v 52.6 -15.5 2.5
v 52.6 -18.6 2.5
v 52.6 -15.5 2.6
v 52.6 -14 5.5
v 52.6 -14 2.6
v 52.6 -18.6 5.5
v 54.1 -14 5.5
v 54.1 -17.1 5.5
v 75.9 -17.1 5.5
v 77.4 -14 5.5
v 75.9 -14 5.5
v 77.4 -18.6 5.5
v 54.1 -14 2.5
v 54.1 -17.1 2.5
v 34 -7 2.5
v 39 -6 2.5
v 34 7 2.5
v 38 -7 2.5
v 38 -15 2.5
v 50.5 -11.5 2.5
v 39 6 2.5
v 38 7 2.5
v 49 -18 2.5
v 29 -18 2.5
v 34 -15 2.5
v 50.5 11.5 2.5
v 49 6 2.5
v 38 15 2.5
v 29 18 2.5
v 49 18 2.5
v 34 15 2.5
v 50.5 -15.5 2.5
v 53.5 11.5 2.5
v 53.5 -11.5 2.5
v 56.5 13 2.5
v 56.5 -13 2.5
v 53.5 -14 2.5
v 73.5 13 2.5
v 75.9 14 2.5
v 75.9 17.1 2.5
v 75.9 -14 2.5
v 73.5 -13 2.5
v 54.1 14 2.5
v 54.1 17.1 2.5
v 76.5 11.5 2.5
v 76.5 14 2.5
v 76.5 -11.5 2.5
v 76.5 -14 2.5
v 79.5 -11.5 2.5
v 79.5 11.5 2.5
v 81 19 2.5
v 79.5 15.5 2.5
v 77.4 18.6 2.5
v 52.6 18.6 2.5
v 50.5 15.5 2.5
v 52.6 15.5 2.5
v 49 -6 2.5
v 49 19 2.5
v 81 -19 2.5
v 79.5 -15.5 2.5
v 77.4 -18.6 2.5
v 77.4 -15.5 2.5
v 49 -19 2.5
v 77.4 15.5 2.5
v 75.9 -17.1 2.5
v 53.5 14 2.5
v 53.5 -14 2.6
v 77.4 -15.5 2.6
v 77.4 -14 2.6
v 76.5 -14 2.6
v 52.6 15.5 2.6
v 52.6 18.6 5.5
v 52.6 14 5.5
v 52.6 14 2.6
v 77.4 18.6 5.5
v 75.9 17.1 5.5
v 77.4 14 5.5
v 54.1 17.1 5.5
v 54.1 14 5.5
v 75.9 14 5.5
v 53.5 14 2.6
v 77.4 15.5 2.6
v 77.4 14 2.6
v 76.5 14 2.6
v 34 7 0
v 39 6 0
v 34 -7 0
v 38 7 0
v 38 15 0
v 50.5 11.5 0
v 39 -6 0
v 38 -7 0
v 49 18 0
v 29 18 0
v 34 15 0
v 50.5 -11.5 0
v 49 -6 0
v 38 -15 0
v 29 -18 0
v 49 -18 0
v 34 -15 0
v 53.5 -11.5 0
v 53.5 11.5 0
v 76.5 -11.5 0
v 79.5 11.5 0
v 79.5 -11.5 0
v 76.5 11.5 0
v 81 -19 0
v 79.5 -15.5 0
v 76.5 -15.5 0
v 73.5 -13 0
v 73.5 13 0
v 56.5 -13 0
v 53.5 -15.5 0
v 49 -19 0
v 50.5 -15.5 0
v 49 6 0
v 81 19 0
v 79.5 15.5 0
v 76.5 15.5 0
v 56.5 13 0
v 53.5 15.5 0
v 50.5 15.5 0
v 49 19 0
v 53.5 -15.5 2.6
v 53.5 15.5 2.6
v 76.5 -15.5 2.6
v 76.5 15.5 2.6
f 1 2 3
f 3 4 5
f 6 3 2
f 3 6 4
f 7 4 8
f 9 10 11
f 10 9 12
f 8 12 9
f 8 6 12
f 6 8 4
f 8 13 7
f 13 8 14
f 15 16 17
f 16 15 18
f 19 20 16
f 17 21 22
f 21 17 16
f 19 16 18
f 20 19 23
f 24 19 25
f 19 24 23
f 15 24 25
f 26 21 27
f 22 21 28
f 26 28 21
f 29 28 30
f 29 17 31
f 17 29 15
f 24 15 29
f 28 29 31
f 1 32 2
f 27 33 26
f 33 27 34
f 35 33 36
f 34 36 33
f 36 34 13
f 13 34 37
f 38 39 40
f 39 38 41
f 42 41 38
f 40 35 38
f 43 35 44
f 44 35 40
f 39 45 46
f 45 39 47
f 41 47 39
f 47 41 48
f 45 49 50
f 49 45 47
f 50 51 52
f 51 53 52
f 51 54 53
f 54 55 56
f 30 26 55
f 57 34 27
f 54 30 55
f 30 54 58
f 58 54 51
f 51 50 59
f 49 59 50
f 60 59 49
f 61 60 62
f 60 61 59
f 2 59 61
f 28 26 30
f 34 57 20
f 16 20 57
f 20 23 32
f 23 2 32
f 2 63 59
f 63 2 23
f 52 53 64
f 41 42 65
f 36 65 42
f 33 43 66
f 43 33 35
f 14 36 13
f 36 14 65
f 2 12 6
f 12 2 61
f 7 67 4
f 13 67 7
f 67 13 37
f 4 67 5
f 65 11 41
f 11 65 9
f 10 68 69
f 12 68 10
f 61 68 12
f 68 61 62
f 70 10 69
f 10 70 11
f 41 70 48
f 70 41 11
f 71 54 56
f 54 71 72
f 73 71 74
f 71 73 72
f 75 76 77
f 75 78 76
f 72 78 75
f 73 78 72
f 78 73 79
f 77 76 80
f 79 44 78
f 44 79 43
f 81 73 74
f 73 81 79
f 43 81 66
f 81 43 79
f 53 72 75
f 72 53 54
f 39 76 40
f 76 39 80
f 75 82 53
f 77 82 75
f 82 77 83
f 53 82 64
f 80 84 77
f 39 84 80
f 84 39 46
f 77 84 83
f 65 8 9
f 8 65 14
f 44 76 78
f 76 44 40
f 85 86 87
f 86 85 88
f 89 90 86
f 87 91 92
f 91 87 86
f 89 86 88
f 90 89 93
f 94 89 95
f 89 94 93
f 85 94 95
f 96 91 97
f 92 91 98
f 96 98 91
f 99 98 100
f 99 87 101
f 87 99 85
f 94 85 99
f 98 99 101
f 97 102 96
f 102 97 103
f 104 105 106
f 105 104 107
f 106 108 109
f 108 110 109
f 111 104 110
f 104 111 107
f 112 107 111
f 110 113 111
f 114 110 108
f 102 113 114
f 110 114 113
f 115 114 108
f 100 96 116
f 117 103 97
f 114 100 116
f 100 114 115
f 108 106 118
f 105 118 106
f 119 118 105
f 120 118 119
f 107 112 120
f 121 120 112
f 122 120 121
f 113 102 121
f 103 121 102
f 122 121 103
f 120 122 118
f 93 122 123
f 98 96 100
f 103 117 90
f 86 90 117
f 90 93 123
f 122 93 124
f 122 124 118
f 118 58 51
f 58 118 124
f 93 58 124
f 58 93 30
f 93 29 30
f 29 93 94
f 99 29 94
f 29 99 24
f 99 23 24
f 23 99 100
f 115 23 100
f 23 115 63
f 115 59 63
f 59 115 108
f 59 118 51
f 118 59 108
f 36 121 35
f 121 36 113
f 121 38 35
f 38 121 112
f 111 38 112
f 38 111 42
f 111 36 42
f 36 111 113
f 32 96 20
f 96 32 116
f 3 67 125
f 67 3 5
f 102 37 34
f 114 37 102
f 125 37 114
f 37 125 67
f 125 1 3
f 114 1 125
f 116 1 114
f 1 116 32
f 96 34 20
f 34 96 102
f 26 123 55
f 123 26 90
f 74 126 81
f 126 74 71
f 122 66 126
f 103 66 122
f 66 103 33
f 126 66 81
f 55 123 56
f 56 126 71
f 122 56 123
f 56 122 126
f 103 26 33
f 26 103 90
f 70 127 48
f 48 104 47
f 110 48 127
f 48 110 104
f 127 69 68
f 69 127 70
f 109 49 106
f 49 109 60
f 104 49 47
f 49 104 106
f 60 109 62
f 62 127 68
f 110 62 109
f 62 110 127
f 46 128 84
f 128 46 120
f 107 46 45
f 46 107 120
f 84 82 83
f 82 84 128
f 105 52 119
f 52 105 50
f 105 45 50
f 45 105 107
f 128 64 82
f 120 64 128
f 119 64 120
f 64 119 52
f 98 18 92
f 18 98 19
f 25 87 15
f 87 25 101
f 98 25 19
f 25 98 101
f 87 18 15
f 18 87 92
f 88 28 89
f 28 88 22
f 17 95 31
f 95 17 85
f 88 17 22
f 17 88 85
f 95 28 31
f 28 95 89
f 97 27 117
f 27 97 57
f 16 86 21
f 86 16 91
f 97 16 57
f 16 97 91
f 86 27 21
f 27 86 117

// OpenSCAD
// MTF-01P intact-case cradle FIT PROTOTYPE, mm; X right, Y forward.
// Primary: https://micoair.cn/zh/docs/sensors/sensors/mtf-01p-sensors
// Keep factory case screws. Two purchased 150x3 ties retain end bands.
// Print flat; installed +Z points DOWN. Sensor rear rests on open ring.
$fn=48;
sensor_x=65;
t=2.5;
body_x=20.8;
body_y=33.2;
clearance=1; // total allowance, NOT a verified manufacturing tolerance
stop_height=3;
inner_x=(body_x+clearance)/2;
inner_y=(body_y+clearance)/2;
tie_y=13.5; // photo-inferred clear end bands; inspect optics on installation
assert(sensor_x>=65 && clearance>=1 && t>=2.5);
assert(tie_y-2>=11.5, "Keep center optical zone unobstructed");
module frame(){
 difference(){
  translate([sensor_x,0]) square([32,38],center=true);
  translate([sensor_x,0]) square([17,26],center=true);
 }
}
difference(){
 union(){
  linear_extrude(t) union(){
   translate([41,0]) square([24,36],center=true);
   frame();
  }
  // Four low L corners locate the case; center side stays open for cable.
  for(s=[-1,1]){
   translate([sensor_x-inner_x-1.5,s*(inner_y+0.75)-0.75,t])
    cube([2*inner_x+3,1.5,stop_height]);
   for(q=[-1,1])
    translate([sensor_x+q*(inner_x+0.75)-0.75,s*(inner_y-0.8)-2.3,t])
     cube([1.5,4.6,stop_height]);
  }
 }
 // Two independent sensor tie loops across case short dimension.
 for(x=[sensor_x-13,sensor_x+13],y=[-tie_y,tie_y])
  translate([x-1.5,y-2,-0.1]) cube([3,4,t+0.2]);
 // Separate frame-root lashing. Keep heads/wires away from sensor optics.
 for(y=[-11,11]) translate([36,y,-0.1]) linear_extrude(t+0.2)
  square([4,8],center=true);
 translate([44,0,-0.1]) linear_extrude(t+0.2) square([10,12],center=true);
}
